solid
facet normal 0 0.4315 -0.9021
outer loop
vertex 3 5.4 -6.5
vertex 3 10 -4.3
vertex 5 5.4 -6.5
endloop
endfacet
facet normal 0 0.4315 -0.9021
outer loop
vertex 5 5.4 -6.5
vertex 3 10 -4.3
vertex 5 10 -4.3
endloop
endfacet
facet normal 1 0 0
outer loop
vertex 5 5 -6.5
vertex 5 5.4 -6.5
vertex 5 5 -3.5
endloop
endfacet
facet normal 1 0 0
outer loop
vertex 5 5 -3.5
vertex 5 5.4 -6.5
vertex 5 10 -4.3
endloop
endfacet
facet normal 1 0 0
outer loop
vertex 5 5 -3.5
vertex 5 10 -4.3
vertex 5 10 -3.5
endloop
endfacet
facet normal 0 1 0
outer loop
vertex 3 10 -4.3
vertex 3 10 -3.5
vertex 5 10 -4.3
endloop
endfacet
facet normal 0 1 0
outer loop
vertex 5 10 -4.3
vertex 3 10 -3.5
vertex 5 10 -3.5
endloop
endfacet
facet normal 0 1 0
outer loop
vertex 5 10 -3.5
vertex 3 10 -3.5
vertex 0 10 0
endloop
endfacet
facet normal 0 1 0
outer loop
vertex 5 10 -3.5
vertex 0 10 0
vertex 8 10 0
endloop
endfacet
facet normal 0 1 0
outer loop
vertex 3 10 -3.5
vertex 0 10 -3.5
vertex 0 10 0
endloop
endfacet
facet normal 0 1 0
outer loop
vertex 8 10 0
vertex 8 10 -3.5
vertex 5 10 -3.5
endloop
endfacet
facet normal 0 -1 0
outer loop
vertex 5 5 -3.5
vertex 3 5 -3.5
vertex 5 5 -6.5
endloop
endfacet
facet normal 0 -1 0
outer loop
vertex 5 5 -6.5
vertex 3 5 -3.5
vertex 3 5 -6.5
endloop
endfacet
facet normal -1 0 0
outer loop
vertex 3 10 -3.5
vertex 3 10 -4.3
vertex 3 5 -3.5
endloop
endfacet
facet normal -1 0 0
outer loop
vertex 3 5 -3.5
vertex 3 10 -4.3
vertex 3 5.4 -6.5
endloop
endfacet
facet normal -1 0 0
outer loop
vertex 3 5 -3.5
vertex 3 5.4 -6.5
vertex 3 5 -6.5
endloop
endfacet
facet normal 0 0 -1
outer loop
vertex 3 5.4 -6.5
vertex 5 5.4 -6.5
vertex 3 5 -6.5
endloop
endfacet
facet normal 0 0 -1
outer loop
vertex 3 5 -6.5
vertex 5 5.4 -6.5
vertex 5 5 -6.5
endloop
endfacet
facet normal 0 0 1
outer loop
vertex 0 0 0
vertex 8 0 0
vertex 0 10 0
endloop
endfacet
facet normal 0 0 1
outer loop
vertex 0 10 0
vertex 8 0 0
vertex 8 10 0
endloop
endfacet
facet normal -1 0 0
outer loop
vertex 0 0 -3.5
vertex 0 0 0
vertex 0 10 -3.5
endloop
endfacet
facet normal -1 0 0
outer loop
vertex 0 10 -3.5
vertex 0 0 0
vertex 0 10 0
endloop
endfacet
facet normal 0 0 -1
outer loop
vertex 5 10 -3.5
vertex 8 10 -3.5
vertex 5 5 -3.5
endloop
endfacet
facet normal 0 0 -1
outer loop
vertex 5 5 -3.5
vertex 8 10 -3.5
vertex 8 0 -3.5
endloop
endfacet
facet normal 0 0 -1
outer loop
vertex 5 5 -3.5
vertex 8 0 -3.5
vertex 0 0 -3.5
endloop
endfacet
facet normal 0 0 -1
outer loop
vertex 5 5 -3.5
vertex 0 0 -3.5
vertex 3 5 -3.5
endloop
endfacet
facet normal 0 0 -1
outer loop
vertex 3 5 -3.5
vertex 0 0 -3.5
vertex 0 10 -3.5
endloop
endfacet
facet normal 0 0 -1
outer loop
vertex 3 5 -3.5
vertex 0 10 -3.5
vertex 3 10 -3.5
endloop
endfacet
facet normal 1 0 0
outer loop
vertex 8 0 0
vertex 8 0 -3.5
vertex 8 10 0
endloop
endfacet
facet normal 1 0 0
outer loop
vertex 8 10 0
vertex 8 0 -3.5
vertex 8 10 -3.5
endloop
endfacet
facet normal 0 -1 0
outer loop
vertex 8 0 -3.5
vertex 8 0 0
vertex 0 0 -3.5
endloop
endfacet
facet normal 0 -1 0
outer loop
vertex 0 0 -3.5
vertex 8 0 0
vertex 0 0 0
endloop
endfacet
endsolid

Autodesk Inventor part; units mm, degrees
ref_plane "YZ Plane" through (0, 0, 0) normal (1, 0, 0) x (0, 1, 0)
ref_plane "XZ Plane" through (0, 0, 0) normal (0, 1, 0) x (-1, 0, 0)
ref_plane "XY Plane" through (0, 0, 0) normal (0, 0, 1) x (1, 0, 0)
sketch "Sketch1" plane through (0, 0, 0) normal (0, 1, 0) x (-1, 0, 0)
  line L0 (0, 0) -> (-8, 0)
  line L1 (-8, 0) -> (-8, -3.5)
  line L2 (-8, -3.5) -> (0, -3.5)
  line L3 (0, -3.5) -> (0, 0)
  dimension "d0" = 8
  dimension "d1" = 3.5
extrude "Extrusion1" add sketch "Sketch1" along normal blind 10
sketch "Sketch2" plane through (8, 0, -3.5) normal (0, 0, -1) x (-1, 0, 0)
  line L0 (0, 10) -> (8, 10) projected
  line L1 (3, 10) -> (5, 10)
  line L2 (5, 10) -> (5, 5)
  line L3 (5, 5) -> (3, 5)
  line L4 (3, 5) -> (3, 10)
  line L5 (8, 0) -> (8, 10) projected
  dimension "d4" = 2
  dimension "d5" = 5
  dimension "d6" = 3
extrude "Extrusion2" add sketch "Sketch2" along normal blind 3
sketch "Sketch3" plane through (5, 5, -3.5) normal (1, 0, 0) x (0, 0, -1)
  line L0 (0, 5) -> (3, 5) projected
  line L1 (0.8, 5) -> (3, 0.4)
  line L2 (3, 0) -> (3, 5) projected
  line L3 (0, -5) -> (0, 5) projected
  line L4 (0, 0) -> (3, 0) projected
  line L5 (0.8, 5) -> (3, 5)
  line L6 (3, 0.4) -> (3, 5)
  point P0 (-3.5, -5)
  dimension "d9" = 0.8
  dimension "d10" = 0.4
extrude "Extrusion3" cut sketch "Sketch3" against normal through all contours L0 L2 L1
properties part number "prueba"
